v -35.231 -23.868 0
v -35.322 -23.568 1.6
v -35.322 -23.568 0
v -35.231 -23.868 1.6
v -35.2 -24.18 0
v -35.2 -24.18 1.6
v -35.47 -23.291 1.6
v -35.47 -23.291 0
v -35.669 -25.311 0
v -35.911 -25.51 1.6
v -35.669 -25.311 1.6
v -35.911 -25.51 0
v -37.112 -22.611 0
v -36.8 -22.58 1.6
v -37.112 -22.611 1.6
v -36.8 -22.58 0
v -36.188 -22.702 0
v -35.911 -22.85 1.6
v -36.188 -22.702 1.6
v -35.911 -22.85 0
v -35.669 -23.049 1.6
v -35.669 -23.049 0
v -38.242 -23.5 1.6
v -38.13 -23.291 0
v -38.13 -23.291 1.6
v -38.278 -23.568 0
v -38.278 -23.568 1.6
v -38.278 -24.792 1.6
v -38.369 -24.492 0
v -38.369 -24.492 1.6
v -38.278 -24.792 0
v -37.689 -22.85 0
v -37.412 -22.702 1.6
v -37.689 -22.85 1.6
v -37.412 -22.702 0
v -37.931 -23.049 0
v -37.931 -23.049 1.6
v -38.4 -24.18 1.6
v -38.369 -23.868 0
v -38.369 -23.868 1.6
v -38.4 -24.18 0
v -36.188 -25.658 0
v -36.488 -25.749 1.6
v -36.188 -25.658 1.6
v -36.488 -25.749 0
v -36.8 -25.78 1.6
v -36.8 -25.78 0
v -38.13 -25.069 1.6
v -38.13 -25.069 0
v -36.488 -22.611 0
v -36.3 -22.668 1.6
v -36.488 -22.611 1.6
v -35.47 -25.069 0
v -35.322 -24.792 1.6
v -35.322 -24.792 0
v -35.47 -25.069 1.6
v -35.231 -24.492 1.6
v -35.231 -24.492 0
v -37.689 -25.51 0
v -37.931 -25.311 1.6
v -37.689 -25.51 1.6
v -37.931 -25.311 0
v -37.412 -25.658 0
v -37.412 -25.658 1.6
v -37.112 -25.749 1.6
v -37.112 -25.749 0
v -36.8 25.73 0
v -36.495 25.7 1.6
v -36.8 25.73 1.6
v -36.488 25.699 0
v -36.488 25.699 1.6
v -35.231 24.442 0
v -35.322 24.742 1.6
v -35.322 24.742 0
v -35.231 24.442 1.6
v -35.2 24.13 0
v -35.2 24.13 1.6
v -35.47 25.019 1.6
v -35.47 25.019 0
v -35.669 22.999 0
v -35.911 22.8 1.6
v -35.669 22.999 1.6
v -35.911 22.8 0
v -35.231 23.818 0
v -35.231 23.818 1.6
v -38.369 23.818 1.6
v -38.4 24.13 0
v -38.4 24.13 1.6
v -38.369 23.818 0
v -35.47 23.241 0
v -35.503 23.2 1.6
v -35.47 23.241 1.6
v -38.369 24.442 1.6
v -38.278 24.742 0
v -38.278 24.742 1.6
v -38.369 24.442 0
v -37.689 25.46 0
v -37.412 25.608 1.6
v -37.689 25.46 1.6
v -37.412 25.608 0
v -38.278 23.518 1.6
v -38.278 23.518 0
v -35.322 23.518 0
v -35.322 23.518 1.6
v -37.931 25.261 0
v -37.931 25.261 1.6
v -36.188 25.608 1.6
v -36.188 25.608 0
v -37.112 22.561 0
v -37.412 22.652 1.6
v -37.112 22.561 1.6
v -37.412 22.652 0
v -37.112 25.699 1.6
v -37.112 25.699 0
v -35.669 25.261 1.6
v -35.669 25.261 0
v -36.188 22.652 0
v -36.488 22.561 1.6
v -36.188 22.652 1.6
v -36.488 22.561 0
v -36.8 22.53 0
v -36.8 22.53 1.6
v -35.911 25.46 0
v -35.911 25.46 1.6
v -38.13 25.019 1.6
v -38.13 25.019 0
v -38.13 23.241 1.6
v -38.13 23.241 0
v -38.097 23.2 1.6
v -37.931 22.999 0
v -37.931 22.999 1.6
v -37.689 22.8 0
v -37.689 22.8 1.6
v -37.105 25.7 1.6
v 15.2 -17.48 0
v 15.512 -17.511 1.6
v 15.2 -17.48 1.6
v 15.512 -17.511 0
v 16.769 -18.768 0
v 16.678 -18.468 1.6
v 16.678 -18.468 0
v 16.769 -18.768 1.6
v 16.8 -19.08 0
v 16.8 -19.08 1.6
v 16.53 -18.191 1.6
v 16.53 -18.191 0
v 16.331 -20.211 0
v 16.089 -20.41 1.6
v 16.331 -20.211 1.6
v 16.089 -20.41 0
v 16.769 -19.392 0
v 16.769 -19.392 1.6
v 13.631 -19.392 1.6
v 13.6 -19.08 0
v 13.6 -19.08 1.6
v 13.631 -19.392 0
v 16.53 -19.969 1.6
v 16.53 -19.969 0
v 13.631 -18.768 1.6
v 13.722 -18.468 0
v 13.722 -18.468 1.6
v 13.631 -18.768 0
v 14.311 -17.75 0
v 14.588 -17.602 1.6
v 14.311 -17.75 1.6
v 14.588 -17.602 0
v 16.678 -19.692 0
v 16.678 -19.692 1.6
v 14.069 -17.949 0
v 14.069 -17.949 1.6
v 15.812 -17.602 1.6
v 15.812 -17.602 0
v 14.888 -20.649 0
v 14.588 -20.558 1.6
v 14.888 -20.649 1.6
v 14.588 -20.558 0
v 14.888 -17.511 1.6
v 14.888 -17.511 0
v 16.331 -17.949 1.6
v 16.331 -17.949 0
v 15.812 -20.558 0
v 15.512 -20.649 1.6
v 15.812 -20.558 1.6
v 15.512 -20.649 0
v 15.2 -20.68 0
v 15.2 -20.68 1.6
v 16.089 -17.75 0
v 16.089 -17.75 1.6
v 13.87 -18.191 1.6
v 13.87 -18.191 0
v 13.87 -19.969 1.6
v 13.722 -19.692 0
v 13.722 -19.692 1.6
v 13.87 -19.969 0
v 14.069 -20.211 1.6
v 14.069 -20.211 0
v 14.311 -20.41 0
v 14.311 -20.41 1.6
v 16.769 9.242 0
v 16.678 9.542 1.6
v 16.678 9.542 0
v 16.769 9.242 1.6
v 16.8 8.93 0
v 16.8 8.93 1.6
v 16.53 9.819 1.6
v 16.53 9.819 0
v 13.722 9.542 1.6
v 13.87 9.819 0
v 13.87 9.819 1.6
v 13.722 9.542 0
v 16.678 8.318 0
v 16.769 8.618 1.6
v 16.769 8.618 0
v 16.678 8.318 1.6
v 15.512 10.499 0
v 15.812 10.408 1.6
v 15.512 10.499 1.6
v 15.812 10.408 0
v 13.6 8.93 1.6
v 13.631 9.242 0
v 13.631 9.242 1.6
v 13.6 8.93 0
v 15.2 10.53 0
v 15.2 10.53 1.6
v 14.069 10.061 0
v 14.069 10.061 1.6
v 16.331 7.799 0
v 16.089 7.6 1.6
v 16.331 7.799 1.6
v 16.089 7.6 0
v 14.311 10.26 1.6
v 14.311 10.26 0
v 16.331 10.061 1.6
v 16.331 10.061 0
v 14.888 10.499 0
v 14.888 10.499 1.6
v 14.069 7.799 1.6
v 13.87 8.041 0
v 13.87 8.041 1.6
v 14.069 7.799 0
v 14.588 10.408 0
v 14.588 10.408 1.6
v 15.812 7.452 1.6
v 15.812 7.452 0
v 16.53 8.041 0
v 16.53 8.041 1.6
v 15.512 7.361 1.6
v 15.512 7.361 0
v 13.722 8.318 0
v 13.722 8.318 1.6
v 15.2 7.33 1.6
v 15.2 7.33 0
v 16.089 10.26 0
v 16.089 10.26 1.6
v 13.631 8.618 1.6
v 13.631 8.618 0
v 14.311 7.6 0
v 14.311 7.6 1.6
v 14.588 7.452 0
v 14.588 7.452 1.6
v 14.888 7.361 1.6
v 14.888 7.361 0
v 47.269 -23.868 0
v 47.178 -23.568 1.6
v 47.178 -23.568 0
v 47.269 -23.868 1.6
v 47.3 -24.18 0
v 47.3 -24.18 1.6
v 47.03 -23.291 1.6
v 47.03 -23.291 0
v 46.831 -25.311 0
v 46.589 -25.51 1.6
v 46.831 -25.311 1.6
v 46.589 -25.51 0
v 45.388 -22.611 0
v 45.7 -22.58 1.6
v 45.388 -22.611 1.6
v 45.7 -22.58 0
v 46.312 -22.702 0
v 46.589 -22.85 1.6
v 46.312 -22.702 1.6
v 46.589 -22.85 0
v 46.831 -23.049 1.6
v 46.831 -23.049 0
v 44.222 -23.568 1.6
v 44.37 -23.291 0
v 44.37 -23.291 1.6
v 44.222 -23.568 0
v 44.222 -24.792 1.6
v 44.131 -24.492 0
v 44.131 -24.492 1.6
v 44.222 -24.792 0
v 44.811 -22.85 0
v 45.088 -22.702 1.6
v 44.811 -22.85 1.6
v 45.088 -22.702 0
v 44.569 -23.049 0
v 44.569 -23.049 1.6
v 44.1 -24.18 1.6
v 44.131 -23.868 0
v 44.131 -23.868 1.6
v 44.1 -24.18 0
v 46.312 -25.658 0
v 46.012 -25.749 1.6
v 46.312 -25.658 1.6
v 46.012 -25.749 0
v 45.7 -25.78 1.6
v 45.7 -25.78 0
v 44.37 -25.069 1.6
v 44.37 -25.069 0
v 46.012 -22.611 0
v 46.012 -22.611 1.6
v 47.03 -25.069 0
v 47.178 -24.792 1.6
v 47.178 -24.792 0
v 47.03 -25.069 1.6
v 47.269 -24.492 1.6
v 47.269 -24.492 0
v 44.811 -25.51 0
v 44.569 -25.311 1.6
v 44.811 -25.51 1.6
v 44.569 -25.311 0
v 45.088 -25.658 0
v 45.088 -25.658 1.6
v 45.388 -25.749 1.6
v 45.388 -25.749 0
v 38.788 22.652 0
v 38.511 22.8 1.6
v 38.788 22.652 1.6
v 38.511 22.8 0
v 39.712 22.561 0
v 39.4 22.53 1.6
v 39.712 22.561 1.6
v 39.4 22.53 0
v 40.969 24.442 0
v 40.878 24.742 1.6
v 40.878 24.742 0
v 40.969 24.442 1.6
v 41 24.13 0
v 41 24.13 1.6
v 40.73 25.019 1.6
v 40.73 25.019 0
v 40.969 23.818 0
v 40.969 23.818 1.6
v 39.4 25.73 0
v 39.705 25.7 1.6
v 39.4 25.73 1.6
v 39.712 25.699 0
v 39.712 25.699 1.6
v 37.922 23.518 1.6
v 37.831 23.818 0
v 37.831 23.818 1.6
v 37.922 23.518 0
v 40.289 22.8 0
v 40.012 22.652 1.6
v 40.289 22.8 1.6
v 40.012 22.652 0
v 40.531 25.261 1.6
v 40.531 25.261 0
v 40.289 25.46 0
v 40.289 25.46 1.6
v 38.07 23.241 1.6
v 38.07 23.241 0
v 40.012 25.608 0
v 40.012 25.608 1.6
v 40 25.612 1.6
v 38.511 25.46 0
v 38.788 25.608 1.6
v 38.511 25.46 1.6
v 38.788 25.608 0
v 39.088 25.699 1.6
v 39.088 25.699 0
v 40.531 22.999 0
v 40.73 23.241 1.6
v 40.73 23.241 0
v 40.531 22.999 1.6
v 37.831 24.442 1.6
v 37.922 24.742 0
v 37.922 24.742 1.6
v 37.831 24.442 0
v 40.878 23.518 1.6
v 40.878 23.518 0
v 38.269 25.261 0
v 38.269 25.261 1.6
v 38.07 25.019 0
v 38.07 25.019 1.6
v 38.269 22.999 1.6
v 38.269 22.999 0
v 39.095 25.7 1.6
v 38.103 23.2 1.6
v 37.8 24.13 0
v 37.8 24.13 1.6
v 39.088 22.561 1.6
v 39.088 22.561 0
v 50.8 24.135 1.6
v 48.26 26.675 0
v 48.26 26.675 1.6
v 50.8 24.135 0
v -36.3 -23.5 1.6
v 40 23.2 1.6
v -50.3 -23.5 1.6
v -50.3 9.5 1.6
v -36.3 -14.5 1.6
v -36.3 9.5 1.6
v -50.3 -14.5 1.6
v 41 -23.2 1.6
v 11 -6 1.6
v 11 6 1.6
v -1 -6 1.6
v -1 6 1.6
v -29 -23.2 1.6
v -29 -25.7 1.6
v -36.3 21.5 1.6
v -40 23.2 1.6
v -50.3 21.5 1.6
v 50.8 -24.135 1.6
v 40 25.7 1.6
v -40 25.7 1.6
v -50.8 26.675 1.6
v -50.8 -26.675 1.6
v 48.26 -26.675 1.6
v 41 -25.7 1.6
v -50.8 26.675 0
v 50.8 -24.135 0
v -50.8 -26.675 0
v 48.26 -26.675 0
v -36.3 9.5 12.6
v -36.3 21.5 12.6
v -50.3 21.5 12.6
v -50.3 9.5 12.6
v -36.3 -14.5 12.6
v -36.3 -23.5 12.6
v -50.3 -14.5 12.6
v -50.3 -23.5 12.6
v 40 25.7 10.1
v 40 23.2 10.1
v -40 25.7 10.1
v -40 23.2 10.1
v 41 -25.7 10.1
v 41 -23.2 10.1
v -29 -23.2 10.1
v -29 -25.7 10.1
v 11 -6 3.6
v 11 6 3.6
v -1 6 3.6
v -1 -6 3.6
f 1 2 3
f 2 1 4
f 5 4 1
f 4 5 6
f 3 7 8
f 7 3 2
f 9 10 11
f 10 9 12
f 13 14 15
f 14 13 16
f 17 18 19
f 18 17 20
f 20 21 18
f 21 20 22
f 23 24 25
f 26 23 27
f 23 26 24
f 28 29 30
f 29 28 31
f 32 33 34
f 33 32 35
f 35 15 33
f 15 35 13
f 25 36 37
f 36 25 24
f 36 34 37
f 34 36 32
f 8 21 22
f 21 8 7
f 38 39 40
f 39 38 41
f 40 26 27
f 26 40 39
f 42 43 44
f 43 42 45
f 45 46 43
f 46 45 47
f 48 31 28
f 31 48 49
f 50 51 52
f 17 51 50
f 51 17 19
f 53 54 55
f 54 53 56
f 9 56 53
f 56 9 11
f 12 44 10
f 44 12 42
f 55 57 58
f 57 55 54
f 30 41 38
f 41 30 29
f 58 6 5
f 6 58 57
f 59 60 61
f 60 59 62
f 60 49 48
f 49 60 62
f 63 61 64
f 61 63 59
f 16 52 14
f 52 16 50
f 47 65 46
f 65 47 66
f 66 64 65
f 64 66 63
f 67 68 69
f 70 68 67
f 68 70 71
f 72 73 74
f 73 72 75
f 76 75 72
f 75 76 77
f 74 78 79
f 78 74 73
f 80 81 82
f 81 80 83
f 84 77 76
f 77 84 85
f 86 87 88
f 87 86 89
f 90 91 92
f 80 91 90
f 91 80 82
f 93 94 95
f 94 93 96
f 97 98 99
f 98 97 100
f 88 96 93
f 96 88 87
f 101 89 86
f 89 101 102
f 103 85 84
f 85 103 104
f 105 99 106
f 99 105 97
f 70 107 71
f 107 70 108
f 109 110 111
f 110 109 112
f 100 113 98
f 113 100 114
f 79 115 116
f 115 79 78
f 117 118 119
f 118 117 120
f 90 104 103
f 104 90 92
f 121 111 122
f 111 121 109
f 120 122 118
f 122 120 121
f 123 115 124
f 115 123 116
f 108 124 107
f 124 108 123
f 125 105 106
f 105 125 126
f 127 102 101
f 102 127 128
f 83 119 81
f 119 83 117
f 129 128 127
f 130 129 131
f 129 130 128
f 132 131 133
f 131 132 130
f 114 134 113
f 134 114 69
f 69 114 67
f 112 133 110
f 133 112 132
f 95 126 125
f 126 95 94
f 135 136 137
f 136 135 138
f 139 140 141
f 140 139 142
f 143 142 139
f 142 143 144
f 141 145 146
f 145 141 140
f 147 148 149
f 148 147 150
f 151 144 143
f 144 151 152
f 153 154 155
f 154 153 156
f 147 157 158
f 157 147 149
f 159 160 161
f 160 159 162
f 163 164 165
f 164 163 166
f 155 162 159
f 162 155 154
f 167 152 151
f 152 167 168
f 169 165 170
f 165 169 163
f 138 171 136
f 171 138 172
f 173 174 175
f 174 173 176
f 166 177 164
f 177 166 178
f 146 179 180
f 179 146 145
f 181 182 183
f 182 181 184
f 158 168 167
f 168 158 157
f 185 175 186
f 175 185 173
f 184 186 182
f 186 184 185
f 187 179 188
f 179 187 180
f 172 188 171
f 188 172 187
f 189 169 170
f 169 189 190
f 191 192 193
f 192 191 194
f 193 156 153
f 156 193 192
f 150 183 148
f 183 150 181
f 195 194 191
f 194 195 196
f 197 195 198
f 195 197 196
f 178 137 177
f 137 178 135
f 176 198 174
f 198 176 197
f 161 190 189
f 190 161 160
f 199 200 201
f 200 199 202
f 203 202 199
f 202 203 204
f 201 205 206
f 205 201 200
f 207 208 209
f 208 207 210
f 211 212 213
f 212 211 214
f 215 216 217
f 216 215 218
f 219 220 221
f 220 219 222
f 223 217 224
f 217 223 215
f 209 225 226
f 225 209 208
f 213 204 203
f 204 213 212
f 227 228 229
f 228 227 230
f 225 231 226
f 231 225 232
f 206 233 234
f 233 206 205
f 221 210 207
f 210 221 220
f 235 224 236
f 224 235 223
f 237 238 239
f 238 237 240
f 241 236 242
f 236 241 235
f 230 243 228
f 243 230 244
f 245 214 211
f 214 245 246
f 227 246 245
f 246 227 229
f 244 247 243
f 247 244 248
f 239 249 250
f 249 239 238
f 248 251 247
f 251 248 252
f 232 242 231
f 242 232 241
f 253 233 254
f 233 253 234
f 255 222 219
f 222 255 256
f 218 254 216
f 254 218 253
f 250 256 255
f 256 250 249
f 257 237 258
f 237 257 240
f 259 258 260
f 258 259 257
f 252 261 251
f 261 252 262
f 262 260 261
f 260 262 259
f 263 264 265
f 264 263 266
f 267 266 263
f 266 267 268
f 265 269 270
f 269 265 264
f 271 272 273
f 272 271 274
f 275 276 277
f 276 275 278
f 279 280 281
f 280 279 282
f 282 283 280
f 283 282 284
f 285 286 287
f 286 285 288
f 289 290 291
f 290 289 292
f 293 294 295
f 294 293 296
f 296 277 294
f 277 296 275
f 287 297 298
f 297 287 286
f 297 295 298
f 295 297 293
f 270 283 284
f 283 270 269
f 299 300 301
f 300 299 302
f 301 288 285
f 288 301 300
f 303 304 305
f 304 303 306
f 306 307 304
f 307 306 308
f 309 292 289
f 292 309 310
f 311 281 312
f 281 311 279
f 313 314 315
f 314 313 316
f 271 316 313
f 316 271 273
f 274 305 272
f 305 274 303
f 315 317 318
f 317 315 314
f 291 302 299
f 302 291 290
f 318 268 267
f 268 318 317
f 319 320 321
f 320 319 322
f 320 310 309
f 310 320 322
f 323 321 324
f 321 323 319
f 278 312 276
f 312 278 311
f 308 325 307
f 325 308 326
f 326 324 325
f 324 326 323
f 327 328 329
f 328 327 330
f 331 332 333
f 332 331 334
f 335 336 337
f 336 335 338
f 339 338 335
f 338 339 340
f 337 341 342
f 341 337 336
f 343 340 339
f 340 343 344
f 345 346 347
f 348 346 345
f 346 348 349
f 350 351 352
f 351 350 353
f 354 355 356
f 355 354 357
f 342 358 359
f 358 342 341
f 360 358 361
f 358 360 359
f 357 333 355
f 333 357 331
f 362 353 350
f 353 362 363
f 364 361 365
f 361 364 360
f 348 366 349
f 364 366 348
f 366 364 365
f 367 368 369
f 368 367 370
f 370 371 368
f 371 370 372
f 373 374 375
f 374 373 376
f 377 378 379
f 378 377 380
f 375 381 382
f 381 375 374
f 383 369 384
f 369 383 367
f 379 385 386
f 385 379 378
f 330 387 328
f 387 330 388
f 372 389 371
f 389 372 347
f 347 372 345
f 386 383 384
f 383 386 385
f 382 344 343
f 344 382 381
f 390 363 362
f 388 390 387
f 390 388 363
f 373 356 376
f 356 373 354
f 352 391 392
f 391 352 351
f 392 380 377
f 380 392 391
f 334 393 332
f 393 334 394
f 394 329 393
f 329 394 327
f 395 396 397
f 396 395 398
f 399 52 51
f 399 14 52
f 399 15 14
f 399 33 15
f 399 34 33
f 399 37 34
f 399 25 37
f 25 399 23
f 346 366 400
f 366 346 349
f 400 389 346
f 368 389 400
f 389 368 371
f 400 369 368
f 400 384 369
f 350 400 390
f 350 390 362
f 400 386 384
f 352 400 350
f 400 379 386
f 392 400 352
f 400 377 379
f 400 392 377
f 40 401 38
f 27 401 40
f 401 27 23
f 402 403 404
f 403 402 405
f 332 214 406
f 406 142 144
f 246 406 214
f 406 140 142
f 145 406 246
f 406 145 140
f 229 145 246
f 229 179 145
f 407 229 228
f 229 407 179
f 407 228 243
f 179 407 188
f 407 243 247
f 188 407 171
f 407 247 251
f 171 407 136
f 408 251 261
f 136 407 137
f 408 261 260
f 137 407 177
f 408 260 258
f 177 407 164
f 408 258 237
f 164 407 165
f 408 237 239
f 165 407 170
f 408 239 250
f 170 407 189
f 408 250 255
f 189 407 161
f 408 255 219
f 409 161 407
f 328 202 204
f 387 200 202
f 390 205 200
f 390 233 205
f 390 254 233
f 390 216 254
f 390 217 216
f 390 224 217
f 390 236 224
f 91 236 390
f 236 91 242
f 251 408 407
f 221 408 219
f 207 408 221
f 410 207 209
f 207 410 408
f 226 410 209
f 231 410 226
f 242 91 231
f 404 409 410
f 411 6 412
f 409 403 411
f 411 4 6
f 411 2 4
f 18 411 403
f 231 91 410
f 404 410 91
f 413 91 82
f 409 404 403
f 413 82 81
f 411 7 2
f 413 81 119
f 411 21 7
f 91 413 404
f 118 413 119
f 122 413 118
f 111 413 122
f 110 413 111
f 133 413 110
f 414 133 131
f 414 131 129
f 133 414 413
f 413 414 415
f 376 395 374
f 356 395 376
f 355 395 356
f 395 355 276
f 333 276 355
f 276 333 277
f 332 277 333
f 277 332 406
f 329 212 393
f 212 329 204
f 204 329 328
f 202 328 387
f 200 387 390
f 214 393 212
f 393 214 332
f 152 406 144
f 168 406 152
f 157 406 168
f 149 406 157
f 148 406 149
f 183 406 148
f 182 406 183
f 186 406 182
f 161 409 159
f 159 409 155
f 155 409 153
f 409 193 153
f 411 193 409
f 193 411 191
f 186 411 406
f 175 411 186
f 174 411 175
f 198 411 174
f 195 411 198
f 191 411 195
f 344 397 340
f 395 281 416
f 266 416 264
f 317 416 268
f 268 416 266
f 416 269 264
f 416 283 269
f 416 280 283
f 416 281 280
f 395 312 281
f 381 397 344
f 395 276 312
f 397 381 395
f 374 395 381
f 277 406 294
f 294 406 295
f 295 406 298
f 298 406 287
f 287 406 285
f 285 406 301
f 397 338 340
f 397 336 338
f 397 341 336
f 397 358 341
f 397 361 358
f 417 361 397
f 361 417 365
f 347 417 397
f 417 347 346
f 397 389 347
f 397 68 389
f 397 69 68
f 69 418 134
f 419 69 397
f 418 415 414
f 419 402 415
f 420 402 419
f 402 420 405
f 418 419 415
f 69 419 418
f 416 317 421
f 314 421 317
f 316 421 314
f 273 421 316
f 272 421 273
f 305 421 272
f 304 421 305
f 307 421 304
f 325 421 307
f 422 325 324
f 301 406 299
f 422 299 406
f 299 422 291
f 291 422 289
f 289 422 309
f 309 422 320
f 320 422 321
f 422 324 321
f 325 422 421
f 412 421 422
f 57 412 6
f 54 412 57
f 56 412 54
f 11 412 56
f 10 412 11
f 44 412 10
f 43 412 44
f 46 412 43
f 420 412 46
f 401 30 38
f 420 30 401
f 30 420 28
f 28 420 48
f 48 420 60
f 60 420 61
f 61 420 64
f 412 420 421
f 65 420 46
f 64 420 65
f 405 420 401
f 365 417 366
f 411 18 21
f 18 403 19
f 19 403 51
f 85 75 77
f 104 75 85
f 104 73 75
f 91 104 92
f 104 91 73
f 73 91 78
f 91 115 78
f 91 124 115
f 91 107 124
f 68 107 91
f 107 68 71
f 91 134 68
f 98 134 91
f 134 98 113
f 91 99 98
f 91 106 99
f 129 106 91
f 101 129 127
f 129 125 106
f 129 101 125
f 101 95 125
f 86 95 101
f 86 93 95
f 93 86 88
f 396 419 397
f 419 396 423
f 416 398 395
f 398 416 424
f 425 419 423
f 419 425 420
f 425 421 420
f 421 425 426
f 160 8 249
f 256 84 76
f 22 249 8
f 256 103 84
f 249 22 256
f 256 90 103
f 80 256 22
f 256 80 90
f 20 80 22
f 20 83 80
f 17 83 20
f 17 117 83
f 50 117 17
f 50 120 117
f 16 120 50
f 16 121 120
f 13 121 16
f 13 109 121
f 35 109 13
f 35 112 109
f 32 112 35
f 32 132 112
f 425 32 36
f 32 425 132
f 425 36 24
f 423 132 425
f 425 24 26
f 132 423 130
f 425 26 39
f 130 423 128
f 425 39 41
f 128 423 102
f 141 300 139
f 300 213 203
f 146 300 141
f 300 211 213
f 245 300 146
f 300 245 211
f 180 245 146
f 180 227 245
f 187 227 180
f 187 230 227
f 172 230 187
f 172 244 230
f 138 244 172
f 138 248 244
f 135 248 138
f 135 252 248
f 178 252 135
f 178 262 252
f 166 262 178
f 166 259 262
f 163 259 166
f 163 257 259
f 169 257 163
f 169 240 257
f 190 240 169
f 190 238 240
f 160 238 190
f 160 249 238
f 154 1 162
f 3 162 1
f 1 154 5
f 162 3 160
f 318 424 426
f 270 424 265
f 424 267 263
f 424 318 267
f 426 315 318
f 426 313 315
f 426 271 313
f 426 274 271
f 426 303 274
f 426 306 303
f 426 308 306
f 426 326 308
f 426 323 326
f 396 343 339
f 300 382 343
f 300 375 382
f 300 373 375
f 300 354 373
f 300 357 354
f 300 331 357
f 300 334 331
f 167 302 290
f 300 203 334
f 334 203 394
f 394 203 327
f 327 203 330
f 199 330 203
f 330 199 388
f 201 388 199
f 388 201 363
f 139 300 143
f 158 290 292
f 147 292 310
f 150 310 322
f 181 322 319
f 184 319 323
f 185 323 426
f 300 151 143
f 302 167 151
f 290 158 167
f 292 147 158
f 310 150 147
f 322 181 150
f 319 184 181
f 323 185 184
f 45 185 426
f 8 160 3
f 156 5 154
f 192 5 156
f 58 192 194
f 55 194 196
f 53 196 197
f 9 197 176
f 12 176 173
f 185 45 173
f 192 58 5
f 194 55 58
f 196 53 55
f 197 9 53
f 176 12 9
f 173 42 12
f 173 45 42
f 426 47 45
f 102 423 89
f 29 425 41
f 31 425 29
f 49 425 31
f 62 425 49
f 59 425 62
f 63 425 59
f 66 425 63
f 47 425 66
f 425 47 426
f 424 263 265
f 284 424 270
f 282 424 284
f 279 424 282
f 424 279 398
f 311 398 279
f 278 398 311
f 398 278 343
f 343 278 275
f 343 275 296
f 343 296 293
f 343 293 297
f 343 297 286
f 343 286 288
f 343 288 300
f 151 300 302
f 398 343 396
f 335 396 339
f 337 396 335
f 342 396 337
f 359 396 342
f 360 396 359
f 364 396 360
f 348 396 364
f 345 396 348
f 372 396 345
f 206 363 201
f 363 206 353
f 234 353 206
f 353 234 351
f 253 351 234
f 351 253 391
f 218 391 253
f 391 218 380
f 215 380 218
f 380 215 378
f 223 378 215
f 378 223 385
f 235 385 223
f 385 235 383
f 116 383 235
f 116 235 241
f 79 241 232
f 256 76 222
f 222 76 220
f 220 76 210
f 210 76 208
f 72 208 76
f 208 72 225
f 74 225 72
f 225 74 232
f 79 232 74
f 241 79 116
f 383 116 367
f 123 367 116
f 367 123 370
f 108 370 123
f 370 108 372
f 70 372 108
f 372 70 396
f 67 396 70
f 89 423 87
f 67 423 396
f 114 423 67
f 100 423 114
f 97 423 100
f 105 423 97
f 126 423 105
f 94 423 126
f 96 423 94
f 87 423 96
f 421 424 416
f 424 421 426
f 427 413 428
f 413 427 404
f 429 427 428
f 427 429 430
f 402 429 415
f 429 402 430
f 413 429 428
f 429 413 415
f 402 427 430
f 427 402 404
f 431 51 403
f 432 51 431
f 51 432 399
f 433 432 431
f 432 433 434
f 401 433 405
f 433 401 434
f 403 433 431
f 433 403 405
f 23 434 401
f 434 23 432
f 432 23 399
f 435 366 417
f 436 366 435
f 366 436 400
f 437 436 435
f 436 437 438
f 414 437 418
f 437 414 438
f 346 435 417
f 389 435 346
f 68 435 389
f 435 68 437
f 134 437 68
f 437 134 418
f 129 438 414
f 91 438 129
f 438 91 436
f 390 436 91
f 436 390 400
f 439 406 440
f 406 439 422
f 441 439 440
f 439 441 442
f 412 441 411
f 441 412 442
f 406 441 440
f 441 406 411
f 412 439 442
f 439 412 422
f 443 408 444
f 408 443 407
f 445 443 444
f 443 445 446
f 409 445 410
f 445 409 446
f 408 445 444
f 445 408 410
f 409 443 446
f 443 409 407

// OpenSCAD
// Arduino Mega 2560 R3 visual source. Units: millimeters; origin: PCB bottom-center.
$fn = 32;

pcb = [101.6, 53.35, 1.6];
corner_cut = 2.54;
holes = [
  [-36.8, -24.18], [-36.8, 24.13], [15.2, -19.08],
  [15.2, 8.93], [45.7, -24.18], [39.4, 24.13]
];

module board() {
  difference() {
    linear_extrude(pcb[2]) polygon(points = [
      [-pcb[0] / 2, -pcb[1] / 2],
      [-pcb[0] / 2, pcb[1] / 2],
      [pcb[0] / 2 - corner_cut, pcb[1] / 2],
      [pcb[0] / 2, pcb[1] / 2 - corner_cut],
      [pcb[0] / 2, -pcb[1] / 2 + corner_cut],
      [pcb[0] / 2 - corner_cut, -pcb[1] / 2]
    ]);
    for (hole = holes)
      translate([hole[0], hole[1], -0.1]) cylinder(d = 3.2, h = pcb[2] + 0.2);
  }
}

color("#2e7d5b") board();
color("#b7b7b7") translate([-43.3, 15.5, 7.1]) cube([14, 12, 11], center = true);
color("#1a1a1a") translate([-43.3, -19, 7.1]) cube([14, 9, 11], center = true);
color("#181818") translate([0, 24.45, 5.85]) cube([80, 2.5, 8.5], center = true);
color("#181818") translate([6, -24.45, 5.85]) cube([70, 2.5, 8.5], center = true);
color("#222222") translate([5, 0, 2.6]) cube([12, 12, 2], center = true);
